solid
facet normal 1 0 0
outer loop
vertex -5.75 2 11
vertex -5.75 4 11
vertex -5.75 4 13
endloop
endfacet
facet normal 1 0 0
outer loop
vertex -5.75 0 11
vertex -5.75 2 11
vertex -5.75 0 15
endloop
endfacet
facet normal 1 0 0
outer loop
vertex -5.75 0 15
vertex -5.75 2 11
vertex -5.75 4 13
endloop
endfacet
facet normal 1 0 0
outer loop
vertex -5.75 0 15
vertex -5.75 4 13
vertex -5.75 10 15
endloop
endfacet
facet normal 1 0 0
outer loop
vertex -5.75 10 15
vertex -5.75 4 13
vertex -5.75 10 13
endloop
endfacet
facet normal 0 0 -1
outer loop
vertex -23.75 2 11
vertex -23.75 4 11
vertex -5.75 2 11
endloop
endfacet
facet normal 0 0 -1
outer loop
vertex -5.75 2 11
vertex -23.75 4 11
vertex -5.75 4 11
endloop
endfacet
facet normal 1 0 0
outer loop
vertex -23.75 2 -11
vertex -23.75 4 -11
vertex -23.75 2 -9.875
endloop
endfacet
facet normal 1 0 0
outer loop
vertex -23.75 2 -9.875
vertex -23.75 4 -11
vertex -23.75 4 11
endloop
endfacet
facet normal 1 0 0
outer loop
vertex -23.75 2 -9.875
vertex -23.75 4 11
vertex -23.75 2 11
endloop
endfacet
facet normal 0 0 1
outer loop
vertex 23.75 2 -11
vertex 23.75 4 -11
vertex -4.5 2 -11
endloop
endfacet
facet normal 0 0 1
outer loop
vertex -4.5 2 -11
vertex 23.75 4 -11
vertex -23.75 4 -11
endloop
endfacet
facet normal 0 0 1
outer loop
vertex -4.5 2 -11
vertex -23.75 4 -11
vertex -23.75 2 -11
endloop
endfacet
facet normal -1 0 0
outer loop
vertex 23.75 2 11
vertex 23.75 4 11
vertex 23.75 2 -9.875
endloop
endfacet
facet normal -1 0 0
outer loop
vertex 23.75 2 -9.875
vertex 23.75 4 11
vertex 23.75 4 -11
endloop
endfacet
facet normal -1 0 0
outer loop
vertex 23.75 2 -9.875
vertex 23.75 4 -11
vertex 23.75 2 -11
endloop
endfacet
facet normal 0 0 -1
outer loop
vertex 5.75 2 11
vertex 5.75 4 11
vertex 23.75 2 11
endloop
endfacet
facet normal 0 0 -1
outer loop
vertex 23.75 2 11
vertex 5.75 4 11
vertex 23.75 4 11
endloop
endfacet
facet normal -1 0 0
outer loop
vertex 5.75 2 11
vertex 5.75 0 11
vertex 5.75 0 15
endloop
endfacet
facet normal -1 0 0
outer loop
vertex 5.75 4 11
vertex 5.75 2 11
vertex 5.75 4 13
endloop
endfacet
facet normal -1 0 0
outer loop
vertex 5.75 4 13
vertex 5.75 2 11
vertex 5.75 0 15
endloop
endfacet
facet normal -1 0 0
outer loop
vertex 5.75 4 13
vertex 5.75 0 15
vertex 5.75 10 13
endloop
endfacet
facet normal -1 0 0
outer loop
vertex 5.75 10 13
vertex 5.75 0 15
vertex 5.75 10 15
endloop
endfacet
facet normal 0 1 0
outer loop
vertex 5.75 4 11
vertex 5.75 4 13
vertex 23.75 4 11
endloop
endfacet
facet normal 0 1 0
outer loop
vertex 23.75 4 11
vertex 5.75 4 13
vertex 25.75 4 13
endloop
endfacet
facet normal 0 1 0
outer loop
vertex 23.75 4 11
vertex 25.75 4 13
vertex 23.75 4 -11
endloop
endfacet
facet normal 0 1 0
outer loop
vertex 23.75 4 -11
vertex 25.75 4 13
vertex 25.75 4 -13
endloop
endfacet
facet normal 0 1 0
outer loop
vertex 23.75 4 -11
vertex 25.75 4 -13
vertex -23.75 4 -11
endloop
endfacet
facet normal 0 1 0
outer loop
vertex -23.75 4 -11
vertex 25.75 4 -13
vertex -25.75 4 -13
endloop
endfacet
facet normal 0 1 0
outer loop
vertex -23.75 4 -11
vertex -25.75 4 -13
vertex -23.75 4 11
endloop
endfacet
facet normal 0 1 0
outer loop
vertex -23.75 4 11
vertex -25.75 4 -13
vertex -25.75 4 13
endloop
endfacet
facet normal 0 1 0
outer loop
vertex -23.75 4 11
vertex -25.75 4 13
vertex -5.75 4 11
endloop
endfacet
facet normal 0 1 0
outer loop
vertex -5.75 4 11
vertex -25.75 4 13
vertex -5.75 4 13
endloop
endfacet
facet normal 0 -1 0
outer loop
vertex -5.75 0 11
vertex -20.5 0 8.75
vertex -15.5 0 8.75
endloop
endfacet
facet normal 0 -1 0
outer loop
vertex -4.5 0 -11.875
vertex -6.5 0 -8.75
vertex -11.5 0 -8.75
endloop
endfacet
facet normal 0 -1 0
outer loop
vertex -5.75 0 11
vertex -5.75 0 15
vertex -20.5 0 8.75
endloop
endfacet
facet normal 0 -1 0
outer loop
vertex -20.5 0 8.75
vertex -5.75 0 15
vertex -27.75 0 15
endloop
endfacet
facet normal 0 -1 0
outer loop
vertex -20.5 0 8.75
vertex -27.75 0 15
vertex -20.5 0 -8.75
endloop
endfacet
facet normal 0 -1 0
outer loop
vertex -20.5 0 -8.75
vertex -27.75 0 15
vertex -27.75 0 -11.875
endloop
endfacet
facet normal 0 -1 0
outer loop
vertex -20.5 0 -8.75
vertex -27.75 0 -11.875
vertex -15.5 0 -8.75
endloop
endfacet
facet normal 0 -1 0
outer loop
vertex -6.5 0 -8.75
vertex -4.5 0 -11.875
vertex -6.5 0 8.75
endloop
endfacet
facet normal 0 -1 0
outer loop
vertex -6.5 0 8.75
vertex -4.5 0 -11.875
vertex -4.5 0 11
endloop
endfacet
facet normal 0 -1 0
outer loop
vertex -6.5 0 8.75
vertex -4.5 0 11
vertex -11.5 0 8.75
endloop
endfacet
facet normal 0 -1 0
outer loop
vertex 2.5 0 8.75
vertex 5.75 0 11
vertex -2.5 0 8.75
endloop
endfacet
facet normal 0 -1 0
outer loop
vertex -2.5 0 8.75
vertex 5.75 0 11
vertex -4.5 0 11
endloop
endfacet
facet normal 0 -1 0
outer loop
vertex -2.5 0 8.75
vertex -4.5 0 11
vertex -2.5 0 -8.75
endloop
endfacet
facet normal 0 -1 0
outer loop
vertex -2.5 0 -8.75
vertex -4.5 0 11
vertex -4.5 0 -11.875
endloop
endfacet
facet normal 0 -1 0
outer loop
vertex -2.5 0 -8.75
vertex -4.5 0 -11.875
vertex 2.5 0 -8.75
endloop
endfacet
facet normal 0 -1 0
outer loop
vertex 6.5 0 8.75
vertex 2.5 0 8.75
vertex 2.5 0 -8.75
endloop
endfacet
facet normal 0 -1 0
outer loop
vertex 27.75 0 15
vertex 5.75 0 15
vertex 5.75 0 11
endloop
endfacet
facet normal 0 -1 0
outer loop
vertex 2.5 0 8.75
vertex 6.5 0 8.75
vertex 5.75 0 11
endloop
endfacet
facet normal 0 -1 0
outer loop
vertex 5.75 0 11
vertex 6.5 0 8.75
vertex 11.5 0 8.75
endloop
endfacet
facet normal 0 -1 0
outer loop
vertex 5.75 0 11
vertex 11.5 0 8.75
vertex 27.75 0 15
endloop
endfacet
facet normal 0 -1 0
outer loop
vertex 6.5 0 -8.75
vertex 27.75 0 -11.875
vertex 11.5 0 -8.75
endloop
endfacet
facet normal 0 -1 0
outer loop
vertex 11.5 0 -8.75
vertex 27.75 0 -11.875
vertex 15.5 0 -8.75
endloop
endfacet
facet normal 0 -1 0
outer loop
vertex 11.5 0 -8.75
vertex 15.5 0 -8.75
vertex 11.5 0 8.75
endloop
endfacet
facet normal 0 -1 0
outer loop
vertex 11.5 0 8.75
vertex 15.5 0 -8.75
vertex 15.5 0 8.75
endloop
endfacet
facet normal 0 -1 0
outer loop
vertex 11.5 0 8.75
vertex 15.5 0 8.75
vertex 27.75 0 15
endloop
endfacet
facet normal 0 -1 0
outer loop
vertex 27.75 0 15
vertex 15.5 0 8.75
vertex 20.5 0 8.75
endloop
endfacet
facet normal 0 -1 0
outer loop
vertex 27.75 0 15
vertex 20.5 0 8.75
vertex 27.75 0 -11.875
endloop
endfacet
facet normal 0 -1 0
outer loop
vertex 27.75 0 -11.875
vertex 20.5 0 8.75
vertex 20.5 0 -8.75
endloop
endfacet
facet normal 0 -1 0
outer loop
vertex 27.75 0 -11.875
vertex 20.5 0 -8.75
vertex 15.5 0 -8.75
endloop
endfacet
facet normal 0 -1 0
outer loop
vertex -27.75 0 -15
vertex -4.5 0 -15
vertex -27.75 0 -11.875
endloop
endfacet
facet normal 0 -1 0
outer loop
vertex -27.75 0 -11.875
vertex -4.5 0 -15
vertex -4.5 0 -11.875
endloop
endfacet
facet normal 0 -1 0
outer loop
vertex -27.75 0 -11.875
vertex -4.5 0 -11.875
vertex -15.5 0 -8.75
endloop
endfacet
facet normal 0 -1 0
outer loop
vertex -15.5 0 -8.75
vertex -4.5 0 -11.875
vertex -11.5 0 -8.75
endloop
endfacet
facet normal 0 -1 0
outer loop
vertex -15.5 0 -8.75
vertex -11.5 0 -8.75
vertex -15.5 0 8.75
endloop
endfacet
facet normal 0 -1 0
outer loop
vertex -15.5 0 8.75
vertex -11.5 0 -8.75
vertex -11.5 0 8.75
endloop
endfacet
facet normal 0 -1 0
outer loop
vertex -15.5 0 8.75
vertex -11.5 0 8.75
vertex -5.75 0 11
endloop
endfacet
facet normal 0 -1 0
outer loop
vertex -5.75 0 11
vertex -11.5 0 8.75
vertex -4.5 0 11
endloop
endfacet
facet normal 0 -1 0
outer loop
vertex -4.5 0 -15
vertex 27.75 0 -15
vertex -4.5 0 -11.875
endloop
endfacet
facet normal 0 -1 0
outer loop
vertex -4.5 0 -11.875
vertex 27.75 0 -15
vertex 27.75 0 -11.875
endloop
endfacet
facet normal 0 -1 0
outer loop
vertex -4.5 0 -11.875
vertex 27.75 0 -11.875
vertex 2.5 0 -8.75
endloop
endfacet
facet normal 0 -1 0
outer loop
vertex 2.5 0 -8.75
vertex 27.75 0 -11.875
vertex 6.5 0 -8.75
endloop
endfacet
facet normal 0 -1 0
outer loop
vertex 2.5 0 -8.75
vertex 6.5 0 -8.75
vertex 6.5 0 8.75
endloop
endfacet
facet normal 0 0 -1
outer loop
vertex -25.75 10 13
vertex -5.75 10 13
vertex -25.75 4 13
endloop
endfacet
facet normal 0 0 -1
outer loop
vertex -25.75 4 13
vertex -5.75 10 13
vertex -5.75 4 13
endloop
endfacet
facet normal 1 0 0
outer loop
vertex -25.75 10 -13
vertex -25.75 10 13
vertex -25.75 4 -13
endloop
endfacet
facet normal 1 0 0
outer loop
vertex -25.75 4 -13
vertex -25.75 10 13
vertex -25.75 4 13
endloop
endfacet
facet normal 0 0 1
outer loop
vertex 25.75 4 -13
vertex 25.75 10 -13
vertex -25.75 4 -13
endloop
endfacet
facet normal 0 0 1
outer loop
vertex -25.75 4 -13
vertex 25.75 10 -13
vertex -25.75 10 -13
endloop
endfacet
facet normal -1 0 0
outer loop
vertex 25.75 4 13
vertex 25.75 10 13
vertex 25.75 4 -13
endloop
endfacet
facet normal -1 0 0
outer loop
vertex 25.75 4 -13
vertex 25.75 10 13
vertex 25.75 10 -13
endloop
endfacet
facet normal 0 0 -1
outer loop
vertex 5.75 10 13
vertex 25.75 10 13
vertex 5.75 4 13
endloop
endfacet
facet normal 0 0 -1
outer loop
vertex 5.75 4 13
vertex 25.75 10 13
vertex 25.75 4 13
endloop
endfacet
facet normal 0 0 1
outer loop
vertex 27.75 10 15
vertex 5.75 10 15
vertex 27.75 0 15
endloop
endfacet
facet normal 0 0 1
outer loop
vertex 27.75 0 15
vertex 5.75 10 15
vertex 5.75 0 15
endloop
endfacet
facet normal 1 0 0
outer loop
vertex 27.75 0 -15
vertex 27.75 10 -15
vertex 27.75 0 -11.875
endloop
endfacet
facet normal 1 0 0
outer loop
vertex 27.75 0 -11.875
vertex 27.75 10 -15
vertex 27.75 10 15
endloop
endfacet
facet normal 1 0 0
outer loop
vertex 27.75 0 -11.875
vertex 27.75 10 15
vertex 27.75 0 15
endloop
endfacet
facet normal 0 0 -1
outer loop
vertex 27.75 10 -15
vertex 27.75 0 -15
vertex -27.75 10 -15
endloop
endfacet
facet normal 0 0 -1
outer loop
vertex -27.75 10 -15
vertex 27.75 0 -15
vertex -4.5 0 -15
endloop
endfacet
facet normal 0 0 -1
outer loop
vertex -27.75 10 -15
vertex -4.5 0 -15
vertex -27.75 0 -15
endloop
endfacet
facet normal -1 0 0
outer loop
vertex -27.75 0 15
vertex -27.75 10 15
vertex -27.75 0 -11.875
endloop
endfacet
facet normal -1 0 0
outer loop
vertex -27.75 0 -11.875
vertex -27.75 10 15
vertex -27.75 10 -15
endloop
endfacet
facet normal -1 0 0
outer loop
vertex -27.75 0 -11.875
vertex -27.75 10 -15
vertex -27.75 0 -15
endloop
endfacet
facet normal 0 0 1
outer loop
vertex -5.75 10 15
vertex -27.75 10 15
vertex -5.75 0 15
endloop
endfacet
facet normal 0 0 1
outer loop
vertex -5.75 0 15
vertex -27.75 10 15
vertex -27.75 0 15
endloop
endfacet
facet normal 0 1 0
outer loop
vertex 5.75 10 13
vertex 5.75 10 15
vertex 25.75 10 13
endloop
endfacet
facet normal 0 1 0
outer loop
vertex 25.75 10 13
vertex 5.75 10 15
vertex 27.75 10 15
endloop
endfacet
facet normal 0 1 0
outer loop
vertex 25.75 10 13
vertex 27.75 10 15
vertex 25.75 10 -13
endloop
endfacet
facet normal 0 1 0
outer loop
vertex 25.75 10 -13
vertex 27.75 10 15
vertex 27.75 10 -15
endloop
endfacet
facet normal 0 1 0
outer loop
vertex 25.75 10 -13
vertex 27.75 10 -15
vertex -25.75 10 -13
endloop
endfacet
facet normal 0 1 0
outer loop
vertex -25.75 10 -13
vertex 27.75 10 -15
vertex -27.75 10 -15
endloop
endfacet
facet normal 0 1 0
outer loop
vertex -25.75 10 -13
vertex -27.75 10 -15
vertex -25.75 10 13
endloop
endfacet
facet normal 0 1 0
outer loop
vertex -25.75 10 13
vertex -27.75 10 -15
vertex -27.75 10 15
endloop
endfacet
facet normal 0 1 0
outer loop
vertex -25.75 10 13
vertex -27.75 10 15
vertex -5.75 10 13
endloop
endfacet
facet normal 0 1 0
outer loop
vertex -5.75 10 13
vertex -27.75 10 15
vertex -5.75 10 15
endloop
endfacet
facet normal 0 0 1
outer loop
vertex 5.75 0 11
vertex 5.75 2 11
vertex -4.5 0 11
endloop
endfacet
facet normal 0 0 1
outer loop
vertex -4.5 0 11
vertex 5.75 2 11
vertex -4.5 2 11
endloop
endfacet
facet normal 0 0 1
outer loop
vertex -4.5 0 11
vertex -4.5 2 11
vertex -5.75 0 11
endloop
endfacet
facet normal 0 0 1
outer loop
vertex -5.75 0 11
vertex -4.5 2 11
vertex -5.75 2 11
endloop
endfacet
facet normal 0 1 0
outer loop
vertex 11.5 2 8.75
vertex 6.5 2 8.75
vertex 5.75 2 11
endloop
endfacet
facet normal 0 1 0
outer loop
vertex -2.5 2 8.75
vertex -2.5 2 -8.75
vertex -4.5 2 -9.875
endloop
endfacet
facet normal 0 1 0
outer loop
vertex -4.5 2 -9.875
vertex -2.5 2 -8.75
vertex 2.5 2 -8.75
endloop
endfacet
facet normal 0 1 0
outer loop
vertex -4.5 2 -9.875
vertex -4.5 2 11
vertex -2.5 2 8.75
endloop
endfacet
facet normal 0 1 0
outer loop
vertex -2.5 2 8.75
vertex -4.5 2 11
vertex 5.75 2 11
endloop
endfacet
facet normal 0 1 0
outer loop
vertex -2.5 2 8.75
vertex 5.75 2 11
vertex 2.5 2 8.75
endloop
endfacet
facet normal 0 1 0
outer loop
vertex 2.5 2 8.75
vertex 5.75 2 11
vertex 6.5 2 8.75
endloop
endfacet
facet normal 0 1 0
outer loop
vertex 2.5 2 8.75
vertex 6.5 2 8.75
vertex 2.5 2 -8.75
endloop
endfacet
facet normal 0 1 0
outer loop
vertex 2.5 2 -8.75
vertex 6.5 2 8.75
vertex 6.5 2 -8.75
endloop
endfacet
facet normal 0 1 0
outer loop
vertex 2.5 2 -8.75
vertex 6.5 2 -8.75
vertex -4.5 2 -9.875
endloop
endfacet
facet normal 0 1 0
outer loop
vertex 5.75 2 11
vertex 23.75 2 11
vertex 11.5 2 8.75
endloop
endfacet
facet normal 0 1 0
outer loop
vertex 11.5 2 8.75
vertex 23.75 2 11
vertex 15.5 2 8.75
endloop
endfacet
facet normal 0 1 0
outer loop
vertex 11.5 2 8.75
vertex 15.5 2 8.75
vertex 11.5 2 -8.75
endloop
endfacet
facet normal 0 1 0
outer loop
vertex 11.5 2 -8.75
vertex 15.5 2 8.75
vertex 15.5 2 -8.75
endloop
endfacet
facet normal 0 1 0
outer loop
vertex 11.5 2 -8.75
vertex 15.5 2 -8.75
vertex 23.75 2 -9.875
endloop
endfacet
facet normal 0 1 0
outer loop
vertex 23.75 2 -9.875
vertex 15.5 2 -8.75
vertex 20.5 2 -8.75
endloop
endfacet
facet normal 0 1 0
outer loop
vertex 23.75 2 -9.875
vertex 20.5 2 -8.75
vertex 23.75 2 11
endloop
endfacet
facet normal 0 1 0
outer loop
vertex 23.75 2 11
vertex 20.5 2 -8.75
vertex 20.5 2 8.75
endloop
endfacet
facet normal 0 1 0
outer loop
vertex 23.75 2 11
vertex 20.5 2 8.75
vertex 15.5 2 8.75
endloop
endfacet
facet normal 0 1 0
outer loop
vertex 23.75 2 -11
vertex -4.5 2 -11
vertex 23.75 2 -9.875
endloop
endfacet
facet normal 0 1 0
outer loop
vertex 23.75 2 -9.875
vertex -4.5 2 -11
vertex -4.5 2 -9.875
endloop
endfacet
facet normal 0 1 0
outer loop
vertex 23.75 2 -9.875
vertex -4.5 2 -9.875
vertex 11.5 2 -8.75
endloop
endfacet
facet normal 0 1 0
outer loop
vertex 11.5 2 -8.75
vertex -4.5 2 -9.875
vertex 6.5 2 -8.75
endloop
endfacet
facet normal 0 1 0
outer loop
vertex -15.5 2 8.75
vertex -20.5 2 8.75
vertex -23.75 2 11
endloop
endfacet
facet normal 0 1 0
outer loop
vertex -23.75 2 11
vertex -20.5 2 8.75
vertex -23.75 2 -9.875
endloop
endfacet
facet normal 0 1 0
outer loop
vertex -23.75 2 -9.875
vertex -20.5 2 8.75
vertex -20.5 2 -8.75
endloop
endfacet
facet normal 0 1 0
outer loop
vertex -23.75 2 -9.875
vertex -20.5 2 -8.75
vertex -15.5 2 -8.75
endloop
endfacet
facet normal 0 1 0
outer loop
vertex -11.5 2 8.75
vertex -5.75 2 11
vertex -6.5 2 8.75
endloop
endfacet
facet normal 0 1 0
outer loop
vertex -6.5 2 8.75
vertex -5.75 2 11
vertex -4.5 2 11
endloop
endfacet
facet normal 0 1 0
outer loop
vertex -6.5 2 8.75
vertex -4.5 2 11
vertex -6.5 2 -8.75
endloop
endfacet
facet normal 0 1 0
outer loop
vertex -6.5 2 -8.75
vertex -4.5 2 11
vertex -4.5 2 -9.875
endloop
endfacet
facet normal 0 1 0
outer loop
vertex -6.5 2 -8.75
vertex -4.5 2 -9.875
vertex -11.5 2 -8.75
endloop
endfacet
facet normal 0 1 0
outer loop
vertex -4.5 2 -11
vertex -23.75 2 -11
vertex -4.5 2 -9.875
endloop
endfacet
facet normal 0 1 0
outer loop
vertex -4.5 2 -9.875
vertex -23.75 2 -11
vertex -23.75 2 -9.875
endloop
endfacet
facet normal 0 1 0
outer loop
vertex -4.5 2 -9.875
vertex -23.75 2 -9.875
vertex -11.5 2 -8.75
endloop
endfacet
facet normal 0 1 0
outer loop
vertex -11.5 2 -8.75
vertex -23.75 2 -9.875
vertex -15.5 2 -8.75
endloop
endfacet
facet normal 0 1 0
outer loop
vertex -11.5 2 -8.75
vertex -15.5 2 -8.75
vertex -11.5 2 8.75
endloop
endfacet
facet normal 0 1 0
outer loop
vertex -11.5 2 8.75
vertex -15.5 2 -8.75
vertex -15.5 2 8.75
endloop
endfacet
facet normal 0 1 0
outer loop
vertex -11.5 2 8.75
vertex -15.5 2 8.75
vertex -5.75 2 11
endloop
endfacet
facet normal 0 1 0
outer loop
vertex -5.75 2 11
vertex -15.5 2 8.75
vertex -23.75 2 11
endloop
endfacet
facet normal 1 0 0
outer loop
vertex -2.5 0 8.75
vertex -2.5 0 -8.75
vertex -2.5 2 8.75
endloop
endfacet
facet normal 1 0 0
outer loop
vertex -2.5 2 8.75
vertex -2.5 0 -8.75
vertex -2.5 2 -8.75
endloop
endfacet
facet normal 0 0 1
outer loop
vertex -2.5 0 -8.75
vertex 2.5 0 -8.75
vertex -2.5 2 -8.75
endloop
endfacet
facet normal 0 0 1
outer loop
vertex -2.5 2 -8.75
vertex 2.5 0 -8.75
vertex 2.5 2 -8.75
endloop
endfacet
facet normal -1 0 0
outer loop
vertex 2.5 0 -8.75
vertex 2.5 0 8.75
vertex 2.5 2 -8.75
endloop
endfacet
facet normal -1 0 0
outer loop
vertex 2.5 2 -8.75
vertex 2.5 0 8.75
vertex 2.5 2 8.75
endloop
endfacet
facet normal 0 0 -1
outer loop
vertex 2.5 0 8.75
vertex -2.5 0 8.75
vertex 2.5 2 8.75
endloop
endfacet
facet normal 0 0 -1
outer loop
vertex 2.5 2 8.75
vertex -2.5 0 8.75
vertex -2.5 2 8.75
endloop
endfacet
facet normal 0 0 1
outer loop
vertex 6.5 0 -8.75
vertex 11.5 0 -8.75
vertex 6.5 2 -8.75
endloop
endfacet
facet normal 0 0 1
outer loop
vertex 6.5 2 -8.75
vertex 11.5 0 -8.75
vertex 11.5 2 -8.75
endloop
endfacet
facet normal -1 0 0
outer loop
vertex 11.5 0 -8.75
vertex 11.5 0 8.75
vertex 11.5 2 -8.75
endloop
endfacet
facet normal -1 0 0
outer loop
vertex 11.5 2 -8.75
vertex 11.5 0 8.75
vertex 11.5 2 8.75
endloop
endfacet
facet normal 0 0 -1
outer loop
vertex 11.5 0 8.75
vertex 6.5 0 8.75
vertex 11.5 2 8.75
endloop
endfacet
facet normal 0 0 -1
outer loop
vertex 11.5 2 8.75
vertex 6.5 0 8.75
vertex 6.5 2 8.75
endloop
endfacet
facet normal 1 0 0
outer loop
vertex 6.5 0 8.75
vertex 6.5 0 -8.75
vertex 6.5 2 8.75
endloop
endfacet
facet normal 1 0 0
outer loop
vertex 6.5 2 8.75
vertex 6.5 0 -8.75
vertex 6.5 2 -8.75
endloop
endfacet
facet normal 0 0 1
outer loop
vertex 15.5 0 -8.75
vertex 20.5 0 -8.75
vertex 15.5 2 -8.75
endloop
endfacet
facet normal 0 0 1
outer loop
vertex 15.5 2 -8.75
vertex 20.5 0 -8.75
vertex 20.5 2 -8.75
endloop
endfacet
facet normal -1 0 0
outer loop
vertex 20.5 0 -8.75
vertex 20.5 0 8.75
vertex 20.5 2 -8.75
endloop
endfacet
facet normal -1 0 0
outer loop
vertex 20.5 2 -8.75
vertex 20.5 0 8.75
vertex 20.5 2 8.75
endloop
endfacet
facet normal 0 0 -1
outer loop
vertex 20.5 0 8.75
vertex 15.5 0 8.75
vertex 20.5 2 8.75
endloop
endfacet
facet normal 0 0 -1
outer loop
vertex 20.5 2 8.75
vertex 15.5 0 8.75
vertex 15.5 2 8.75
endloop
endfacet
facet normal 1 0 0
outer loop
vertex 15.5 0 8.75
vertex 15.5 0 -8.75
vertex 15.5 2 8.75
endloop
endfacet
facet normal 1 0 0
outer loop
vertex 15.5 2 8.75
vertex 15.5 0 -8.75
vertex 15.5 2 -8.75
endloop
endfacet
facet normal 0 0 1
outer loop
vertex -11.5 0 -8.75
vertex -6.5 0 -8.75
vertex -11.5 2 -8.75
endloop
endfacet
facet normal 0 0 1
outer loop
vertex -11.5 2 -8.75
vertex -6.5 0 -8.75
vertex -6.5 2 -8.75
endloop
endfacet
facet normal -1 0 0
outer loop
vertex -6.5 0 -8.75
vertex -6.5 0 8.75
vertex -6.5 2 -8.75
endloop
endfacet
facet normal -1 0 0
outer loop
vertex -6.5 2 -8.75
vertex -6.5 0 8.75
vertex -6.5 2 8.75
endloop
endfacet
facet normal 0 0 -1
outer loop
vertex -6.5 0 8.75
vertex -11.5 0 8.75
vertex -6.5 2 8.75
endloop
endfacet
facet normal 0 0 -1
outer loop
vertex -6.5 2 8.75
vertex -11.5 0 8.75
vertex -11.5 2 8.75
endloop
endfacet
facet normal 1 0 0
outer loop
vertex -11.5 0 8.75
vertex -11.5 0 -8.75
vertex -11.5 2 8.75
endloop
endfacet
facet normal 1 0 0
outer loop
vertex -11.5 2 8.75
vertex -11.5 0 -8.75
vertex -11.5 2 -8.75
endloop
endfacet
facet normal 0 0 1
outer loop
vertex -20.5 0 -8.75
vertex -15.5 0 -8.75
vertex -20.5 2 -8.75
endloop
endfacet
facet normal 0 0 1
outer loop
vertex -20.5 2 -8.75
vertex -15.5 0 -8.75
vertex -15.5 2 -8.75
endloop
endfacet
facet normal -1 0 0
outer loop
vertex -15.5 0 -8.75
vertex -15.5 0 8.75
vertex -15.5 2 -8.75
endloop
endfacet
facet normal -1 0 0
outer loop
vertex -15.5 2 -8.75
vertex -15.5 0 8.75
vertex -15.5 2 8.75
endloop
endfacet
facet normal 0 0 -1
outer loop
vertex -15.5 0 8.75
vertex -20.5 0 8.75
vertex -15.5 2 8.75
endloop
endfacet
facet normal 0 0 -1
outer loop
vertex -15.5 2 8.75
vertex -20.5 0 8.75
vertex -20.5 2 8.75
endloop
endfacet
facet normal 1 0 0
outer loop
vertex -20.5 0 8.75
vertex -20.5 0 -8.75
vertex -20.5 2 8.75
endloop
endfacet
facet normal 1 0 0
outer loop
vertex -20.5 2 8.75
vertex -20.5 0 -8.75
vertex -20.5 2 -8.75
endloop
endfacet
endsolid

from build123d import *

# Parameters (mm, degrees)
BOSS_EXTRUDE1_DEPTH = 4
BOSS_EXTRUDE3_DEPTH = 10
BOSS_EXTRUDE4_DEPTH = 2
SKETCH2_W           = 5
SKETCH2_H           = 17.5
CUT_EXTRUDE2_DEPTH  = 2


with BuildPart() as part:
    # Sketch1 → Boss-Extrude1 (new body)
    with BuildSketch(Plane(origin=(0, 0, 0), x_dir=(1, 0, 0), z_dir=(0, 1, 0))):
        Polygon((5.75, -11), (5.75, -13), (25.75, -13), (25.75, 13), (-25.75, 13), (-25.75, -13), (-5.75, -13), (-5.75, -11), (-23.75, -11), (-23.75, 11), (23.75, 11), (23.75, -11), align=None)
    extrude(amount=BOSS_EXTRUDE1_DEPTH)

    # Sketch1<4> → Boss-Extrude3 (add)
    with BuildSketch(Plane(origin=(0, 0, 0), x_dir=(1, 0, 0), z_dir=(0, 1, 0))):
        Polygon((27.75, -15), (27.75, 15), (-27.75, 15), (-27.75, -15), (-5.75, -15), (-5.75, -13), (-25.75, -13), (-25.75, 13), (25.75, 13), (25.75, -13), (5.75, -13), (5.75, -15), align=None)
    extrude(amount=BOSS_EXTRUDE3_DEPTH)

    # Sketch1<6> → Boss-Extrude4 (add)
    with BuildSketch(Plane(origin=(0, 0, 0), x_dir=(1, 0, 0), z_dir=(0, 1, 0))):
        Polygon((-5.75, -11), (5.75, -11), (23.75, -11), (23.75, 11), (-23.75, 11), (-23.75, -11), align=None)
    extrude(amount=BOSS_EXTRUDE4_DEPTH)

    # Sketch2 → Cut-Extrude2 (cut)
    with BuildSketch(Plane(origin=(0, 2, 0), x_dir=(1, 0, 0), z_dir=(0, 1, 0))):
        with Locations((9, 0)):
            Rectangle(SKETCH2_W, SKETCH2_H)
        Rectangle(SKETCH2_W, SKETCH2_H)
        with Locations((18, 0)):
            Rectangle(SKETCH2_W, SKETCH2_H)
        with Locations((-9, 0)):
            Rectangle(SKETCH2_W, SKETCH2_H)
        with Locations((-18, 0)):
            Rectangle(SKETCH2_W, SKETCH2_H)
    extrude(amount=-CUT_EXTRUDE2_DEPTH, mode=Mode.SUBTRACT)


solid = part.part
